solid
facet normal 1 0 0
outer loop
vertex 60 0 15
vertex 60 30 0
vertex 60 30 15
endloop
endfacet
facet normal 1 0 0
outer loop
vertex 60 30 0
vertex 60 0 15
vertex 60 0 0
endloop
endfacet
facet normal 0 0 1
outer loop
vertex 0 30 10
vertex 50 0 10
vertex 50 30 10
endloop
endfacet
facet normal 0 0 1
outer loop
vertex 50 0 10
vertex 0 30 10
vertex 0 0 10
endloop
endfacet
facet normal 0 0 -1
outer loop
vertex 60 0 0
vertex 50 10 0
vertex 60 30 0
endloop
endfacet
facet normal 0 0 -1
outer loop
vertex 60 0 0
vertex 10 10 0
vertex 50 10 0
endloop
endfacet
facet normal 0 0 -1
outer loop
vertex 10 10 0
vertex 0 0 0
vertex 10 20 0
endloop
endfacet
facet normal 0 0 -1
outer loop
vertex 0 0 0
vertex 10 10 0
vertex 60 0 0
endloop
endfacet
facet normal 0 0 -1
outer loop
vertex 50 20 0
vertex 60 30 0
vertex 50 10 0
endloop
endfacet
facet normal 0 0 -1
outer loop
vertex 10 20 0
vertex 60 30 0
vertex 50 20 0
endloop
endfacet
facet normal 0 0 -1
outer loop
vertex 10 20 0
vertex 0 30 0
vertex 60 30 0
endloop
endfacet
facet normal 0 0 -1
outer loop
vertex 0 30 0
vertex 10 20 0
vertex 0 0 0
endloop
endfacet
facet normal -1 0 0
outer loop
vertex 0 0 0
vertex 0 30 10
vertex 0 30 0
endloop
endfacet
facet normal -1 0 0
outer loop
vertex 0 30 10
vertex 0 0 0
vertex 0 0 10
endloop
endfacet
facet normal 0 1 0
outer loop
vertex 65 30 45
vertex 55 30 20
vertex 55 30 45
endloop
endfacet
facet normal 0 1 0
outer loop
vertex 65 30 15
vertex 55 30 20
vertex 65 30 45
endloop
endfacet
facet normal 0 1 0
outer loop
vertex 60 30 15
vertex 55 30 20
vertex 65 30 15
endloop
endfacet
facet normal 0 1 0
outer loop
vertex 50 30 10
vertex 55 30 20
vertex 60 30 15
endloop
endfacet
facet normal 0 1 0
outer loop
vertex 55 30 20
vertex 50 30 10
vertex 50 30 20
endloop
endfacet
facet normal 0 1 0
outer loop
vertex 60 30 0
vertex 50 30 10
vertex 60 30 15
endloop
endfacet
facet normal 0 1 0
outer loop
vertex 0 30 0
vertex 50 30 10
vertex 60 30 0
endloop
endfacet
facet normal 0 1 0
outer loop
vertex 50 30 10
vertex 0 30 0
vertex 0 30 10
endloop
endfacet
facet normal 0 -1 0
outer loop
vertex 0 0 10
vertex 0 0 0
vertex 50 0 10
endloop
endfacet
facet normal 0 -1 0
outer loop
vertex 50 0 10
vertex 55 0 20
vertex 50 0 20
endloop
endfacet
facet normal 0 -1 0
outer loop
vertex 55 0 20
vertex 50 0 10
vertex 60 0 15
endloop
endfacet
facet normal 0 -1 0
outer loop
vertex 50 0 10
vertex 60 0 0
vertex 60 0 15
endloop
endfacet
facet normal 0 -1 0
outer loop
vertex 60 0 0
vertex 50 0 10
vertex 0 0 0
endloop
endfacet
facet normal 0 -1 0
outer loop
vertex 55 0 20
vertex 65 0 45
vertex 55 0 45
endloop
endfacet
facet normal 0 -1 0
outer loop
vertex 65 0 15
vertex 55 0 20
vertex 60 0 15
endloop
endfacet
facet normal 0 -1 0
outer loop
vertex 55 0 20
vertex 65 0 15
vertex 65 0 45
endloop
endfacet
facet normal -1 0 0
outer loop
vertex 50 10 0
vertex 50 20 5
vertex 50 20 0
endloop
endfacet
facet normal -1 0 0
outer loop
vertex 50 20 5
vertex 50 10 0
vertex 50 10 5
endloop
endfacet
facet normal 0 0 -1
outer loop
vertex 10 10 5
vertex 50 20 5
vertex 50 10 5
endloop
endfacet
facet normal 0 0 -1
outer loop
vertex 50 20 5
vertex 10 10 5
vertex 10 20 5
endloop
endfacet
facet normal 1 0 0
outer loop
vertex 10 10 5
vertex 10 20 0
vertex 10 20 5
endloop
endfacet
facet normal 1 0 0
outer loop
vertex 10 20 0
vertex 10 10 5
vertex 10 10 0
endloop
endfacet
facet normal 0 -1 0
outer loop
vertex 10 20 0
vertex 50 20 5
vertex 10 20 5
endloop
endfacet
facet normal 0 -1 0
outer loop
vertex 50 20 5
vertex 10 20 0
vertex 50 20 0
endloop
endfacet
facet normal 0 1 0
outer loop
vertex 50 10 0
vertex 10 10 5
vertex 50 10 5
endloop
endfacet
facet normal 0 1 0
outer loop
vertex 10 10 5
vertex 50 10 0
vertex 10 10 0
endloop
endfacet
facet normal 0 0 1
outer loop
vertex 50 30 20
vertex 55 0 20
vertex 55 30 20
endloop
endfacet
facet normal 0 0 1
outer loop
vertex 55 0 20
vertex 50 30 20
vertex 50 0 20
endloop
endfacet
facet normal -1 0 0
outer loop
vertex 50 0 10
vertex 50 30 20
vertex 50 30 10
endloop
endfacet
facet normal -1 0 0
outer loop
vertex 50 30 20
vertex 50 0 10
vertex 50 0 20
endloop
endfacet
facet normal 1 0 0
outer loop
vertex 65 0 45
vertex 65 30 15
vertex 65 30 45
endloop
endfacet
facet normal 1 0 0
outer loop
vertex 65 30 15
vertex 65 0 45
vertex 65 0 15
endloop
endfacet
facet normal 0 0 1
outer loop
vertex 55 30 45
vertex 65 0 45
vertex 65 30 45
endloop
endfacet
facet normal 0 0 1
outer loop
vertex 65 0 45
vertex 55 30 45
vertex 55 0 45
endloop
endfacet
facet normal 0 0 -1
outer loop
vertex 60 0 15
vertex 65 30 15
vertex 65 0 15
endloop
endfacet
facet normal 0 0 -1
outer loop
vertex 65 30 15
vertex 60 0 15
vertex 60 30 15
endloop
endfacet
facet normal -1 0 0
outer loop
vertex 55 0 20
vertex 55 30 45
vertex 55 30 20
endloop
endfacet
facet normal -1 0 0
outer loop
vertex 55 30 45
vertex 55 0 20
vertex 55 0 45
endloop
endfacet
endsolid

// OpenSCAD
// Base block
module base_block() {
    difference() {
        // Main rectangular block
        cube([60, 30, 10], center = false);
        // Recessed groove along the length of the base block
        translate([10, 10, 0])
            cube([40, 10, 5], center = false);
    }
    // Raised section with increased height
    translate([50, 0, 10])
        cube([10, 30, 10], center = false);
}

// Vertical support
module vertical_support() {
    // Repositioned closer to the edge of the base block
    translate([55, 0, 15]) {
        cube([10, 30, 30], center = false);
    }
}

// Angled connector
module angled_connector() {
    // Triangular angled connector connecting vertical support to base block
    translate([50, 0, 10]) {
        polyhedron(
            points = [
                [0, 0, 0], [10, 0, 0], [10, 30, 0], [0, 30, 0], // Base rectangle
                [0, 0, 15], [10, 0, 15], [5, 30, 15]  // Top points forming a triangular shape
            ],
            faces = [
                [0, 1, 5, 4], [1, 2, 6, 5], [2, 3, 6], [3, 0, 4], // Side faces
                [4, 5, 6], // Top triangular face
                [0, 1, 2, 3]  // Bottom face
            ]
        );
    }
}

// Flat plate
module flat_plate() {
    // Thin flat plate covering the recessed groove
    translate([10, 10, 5]) {
        cube([40, 10, 1], center = false);
    }
}

// Assembly
module assembly() {
    base_block();
    vertical_support();
    angled_connector();
    flat_plate();
}

// Render the assembly
assembly();
